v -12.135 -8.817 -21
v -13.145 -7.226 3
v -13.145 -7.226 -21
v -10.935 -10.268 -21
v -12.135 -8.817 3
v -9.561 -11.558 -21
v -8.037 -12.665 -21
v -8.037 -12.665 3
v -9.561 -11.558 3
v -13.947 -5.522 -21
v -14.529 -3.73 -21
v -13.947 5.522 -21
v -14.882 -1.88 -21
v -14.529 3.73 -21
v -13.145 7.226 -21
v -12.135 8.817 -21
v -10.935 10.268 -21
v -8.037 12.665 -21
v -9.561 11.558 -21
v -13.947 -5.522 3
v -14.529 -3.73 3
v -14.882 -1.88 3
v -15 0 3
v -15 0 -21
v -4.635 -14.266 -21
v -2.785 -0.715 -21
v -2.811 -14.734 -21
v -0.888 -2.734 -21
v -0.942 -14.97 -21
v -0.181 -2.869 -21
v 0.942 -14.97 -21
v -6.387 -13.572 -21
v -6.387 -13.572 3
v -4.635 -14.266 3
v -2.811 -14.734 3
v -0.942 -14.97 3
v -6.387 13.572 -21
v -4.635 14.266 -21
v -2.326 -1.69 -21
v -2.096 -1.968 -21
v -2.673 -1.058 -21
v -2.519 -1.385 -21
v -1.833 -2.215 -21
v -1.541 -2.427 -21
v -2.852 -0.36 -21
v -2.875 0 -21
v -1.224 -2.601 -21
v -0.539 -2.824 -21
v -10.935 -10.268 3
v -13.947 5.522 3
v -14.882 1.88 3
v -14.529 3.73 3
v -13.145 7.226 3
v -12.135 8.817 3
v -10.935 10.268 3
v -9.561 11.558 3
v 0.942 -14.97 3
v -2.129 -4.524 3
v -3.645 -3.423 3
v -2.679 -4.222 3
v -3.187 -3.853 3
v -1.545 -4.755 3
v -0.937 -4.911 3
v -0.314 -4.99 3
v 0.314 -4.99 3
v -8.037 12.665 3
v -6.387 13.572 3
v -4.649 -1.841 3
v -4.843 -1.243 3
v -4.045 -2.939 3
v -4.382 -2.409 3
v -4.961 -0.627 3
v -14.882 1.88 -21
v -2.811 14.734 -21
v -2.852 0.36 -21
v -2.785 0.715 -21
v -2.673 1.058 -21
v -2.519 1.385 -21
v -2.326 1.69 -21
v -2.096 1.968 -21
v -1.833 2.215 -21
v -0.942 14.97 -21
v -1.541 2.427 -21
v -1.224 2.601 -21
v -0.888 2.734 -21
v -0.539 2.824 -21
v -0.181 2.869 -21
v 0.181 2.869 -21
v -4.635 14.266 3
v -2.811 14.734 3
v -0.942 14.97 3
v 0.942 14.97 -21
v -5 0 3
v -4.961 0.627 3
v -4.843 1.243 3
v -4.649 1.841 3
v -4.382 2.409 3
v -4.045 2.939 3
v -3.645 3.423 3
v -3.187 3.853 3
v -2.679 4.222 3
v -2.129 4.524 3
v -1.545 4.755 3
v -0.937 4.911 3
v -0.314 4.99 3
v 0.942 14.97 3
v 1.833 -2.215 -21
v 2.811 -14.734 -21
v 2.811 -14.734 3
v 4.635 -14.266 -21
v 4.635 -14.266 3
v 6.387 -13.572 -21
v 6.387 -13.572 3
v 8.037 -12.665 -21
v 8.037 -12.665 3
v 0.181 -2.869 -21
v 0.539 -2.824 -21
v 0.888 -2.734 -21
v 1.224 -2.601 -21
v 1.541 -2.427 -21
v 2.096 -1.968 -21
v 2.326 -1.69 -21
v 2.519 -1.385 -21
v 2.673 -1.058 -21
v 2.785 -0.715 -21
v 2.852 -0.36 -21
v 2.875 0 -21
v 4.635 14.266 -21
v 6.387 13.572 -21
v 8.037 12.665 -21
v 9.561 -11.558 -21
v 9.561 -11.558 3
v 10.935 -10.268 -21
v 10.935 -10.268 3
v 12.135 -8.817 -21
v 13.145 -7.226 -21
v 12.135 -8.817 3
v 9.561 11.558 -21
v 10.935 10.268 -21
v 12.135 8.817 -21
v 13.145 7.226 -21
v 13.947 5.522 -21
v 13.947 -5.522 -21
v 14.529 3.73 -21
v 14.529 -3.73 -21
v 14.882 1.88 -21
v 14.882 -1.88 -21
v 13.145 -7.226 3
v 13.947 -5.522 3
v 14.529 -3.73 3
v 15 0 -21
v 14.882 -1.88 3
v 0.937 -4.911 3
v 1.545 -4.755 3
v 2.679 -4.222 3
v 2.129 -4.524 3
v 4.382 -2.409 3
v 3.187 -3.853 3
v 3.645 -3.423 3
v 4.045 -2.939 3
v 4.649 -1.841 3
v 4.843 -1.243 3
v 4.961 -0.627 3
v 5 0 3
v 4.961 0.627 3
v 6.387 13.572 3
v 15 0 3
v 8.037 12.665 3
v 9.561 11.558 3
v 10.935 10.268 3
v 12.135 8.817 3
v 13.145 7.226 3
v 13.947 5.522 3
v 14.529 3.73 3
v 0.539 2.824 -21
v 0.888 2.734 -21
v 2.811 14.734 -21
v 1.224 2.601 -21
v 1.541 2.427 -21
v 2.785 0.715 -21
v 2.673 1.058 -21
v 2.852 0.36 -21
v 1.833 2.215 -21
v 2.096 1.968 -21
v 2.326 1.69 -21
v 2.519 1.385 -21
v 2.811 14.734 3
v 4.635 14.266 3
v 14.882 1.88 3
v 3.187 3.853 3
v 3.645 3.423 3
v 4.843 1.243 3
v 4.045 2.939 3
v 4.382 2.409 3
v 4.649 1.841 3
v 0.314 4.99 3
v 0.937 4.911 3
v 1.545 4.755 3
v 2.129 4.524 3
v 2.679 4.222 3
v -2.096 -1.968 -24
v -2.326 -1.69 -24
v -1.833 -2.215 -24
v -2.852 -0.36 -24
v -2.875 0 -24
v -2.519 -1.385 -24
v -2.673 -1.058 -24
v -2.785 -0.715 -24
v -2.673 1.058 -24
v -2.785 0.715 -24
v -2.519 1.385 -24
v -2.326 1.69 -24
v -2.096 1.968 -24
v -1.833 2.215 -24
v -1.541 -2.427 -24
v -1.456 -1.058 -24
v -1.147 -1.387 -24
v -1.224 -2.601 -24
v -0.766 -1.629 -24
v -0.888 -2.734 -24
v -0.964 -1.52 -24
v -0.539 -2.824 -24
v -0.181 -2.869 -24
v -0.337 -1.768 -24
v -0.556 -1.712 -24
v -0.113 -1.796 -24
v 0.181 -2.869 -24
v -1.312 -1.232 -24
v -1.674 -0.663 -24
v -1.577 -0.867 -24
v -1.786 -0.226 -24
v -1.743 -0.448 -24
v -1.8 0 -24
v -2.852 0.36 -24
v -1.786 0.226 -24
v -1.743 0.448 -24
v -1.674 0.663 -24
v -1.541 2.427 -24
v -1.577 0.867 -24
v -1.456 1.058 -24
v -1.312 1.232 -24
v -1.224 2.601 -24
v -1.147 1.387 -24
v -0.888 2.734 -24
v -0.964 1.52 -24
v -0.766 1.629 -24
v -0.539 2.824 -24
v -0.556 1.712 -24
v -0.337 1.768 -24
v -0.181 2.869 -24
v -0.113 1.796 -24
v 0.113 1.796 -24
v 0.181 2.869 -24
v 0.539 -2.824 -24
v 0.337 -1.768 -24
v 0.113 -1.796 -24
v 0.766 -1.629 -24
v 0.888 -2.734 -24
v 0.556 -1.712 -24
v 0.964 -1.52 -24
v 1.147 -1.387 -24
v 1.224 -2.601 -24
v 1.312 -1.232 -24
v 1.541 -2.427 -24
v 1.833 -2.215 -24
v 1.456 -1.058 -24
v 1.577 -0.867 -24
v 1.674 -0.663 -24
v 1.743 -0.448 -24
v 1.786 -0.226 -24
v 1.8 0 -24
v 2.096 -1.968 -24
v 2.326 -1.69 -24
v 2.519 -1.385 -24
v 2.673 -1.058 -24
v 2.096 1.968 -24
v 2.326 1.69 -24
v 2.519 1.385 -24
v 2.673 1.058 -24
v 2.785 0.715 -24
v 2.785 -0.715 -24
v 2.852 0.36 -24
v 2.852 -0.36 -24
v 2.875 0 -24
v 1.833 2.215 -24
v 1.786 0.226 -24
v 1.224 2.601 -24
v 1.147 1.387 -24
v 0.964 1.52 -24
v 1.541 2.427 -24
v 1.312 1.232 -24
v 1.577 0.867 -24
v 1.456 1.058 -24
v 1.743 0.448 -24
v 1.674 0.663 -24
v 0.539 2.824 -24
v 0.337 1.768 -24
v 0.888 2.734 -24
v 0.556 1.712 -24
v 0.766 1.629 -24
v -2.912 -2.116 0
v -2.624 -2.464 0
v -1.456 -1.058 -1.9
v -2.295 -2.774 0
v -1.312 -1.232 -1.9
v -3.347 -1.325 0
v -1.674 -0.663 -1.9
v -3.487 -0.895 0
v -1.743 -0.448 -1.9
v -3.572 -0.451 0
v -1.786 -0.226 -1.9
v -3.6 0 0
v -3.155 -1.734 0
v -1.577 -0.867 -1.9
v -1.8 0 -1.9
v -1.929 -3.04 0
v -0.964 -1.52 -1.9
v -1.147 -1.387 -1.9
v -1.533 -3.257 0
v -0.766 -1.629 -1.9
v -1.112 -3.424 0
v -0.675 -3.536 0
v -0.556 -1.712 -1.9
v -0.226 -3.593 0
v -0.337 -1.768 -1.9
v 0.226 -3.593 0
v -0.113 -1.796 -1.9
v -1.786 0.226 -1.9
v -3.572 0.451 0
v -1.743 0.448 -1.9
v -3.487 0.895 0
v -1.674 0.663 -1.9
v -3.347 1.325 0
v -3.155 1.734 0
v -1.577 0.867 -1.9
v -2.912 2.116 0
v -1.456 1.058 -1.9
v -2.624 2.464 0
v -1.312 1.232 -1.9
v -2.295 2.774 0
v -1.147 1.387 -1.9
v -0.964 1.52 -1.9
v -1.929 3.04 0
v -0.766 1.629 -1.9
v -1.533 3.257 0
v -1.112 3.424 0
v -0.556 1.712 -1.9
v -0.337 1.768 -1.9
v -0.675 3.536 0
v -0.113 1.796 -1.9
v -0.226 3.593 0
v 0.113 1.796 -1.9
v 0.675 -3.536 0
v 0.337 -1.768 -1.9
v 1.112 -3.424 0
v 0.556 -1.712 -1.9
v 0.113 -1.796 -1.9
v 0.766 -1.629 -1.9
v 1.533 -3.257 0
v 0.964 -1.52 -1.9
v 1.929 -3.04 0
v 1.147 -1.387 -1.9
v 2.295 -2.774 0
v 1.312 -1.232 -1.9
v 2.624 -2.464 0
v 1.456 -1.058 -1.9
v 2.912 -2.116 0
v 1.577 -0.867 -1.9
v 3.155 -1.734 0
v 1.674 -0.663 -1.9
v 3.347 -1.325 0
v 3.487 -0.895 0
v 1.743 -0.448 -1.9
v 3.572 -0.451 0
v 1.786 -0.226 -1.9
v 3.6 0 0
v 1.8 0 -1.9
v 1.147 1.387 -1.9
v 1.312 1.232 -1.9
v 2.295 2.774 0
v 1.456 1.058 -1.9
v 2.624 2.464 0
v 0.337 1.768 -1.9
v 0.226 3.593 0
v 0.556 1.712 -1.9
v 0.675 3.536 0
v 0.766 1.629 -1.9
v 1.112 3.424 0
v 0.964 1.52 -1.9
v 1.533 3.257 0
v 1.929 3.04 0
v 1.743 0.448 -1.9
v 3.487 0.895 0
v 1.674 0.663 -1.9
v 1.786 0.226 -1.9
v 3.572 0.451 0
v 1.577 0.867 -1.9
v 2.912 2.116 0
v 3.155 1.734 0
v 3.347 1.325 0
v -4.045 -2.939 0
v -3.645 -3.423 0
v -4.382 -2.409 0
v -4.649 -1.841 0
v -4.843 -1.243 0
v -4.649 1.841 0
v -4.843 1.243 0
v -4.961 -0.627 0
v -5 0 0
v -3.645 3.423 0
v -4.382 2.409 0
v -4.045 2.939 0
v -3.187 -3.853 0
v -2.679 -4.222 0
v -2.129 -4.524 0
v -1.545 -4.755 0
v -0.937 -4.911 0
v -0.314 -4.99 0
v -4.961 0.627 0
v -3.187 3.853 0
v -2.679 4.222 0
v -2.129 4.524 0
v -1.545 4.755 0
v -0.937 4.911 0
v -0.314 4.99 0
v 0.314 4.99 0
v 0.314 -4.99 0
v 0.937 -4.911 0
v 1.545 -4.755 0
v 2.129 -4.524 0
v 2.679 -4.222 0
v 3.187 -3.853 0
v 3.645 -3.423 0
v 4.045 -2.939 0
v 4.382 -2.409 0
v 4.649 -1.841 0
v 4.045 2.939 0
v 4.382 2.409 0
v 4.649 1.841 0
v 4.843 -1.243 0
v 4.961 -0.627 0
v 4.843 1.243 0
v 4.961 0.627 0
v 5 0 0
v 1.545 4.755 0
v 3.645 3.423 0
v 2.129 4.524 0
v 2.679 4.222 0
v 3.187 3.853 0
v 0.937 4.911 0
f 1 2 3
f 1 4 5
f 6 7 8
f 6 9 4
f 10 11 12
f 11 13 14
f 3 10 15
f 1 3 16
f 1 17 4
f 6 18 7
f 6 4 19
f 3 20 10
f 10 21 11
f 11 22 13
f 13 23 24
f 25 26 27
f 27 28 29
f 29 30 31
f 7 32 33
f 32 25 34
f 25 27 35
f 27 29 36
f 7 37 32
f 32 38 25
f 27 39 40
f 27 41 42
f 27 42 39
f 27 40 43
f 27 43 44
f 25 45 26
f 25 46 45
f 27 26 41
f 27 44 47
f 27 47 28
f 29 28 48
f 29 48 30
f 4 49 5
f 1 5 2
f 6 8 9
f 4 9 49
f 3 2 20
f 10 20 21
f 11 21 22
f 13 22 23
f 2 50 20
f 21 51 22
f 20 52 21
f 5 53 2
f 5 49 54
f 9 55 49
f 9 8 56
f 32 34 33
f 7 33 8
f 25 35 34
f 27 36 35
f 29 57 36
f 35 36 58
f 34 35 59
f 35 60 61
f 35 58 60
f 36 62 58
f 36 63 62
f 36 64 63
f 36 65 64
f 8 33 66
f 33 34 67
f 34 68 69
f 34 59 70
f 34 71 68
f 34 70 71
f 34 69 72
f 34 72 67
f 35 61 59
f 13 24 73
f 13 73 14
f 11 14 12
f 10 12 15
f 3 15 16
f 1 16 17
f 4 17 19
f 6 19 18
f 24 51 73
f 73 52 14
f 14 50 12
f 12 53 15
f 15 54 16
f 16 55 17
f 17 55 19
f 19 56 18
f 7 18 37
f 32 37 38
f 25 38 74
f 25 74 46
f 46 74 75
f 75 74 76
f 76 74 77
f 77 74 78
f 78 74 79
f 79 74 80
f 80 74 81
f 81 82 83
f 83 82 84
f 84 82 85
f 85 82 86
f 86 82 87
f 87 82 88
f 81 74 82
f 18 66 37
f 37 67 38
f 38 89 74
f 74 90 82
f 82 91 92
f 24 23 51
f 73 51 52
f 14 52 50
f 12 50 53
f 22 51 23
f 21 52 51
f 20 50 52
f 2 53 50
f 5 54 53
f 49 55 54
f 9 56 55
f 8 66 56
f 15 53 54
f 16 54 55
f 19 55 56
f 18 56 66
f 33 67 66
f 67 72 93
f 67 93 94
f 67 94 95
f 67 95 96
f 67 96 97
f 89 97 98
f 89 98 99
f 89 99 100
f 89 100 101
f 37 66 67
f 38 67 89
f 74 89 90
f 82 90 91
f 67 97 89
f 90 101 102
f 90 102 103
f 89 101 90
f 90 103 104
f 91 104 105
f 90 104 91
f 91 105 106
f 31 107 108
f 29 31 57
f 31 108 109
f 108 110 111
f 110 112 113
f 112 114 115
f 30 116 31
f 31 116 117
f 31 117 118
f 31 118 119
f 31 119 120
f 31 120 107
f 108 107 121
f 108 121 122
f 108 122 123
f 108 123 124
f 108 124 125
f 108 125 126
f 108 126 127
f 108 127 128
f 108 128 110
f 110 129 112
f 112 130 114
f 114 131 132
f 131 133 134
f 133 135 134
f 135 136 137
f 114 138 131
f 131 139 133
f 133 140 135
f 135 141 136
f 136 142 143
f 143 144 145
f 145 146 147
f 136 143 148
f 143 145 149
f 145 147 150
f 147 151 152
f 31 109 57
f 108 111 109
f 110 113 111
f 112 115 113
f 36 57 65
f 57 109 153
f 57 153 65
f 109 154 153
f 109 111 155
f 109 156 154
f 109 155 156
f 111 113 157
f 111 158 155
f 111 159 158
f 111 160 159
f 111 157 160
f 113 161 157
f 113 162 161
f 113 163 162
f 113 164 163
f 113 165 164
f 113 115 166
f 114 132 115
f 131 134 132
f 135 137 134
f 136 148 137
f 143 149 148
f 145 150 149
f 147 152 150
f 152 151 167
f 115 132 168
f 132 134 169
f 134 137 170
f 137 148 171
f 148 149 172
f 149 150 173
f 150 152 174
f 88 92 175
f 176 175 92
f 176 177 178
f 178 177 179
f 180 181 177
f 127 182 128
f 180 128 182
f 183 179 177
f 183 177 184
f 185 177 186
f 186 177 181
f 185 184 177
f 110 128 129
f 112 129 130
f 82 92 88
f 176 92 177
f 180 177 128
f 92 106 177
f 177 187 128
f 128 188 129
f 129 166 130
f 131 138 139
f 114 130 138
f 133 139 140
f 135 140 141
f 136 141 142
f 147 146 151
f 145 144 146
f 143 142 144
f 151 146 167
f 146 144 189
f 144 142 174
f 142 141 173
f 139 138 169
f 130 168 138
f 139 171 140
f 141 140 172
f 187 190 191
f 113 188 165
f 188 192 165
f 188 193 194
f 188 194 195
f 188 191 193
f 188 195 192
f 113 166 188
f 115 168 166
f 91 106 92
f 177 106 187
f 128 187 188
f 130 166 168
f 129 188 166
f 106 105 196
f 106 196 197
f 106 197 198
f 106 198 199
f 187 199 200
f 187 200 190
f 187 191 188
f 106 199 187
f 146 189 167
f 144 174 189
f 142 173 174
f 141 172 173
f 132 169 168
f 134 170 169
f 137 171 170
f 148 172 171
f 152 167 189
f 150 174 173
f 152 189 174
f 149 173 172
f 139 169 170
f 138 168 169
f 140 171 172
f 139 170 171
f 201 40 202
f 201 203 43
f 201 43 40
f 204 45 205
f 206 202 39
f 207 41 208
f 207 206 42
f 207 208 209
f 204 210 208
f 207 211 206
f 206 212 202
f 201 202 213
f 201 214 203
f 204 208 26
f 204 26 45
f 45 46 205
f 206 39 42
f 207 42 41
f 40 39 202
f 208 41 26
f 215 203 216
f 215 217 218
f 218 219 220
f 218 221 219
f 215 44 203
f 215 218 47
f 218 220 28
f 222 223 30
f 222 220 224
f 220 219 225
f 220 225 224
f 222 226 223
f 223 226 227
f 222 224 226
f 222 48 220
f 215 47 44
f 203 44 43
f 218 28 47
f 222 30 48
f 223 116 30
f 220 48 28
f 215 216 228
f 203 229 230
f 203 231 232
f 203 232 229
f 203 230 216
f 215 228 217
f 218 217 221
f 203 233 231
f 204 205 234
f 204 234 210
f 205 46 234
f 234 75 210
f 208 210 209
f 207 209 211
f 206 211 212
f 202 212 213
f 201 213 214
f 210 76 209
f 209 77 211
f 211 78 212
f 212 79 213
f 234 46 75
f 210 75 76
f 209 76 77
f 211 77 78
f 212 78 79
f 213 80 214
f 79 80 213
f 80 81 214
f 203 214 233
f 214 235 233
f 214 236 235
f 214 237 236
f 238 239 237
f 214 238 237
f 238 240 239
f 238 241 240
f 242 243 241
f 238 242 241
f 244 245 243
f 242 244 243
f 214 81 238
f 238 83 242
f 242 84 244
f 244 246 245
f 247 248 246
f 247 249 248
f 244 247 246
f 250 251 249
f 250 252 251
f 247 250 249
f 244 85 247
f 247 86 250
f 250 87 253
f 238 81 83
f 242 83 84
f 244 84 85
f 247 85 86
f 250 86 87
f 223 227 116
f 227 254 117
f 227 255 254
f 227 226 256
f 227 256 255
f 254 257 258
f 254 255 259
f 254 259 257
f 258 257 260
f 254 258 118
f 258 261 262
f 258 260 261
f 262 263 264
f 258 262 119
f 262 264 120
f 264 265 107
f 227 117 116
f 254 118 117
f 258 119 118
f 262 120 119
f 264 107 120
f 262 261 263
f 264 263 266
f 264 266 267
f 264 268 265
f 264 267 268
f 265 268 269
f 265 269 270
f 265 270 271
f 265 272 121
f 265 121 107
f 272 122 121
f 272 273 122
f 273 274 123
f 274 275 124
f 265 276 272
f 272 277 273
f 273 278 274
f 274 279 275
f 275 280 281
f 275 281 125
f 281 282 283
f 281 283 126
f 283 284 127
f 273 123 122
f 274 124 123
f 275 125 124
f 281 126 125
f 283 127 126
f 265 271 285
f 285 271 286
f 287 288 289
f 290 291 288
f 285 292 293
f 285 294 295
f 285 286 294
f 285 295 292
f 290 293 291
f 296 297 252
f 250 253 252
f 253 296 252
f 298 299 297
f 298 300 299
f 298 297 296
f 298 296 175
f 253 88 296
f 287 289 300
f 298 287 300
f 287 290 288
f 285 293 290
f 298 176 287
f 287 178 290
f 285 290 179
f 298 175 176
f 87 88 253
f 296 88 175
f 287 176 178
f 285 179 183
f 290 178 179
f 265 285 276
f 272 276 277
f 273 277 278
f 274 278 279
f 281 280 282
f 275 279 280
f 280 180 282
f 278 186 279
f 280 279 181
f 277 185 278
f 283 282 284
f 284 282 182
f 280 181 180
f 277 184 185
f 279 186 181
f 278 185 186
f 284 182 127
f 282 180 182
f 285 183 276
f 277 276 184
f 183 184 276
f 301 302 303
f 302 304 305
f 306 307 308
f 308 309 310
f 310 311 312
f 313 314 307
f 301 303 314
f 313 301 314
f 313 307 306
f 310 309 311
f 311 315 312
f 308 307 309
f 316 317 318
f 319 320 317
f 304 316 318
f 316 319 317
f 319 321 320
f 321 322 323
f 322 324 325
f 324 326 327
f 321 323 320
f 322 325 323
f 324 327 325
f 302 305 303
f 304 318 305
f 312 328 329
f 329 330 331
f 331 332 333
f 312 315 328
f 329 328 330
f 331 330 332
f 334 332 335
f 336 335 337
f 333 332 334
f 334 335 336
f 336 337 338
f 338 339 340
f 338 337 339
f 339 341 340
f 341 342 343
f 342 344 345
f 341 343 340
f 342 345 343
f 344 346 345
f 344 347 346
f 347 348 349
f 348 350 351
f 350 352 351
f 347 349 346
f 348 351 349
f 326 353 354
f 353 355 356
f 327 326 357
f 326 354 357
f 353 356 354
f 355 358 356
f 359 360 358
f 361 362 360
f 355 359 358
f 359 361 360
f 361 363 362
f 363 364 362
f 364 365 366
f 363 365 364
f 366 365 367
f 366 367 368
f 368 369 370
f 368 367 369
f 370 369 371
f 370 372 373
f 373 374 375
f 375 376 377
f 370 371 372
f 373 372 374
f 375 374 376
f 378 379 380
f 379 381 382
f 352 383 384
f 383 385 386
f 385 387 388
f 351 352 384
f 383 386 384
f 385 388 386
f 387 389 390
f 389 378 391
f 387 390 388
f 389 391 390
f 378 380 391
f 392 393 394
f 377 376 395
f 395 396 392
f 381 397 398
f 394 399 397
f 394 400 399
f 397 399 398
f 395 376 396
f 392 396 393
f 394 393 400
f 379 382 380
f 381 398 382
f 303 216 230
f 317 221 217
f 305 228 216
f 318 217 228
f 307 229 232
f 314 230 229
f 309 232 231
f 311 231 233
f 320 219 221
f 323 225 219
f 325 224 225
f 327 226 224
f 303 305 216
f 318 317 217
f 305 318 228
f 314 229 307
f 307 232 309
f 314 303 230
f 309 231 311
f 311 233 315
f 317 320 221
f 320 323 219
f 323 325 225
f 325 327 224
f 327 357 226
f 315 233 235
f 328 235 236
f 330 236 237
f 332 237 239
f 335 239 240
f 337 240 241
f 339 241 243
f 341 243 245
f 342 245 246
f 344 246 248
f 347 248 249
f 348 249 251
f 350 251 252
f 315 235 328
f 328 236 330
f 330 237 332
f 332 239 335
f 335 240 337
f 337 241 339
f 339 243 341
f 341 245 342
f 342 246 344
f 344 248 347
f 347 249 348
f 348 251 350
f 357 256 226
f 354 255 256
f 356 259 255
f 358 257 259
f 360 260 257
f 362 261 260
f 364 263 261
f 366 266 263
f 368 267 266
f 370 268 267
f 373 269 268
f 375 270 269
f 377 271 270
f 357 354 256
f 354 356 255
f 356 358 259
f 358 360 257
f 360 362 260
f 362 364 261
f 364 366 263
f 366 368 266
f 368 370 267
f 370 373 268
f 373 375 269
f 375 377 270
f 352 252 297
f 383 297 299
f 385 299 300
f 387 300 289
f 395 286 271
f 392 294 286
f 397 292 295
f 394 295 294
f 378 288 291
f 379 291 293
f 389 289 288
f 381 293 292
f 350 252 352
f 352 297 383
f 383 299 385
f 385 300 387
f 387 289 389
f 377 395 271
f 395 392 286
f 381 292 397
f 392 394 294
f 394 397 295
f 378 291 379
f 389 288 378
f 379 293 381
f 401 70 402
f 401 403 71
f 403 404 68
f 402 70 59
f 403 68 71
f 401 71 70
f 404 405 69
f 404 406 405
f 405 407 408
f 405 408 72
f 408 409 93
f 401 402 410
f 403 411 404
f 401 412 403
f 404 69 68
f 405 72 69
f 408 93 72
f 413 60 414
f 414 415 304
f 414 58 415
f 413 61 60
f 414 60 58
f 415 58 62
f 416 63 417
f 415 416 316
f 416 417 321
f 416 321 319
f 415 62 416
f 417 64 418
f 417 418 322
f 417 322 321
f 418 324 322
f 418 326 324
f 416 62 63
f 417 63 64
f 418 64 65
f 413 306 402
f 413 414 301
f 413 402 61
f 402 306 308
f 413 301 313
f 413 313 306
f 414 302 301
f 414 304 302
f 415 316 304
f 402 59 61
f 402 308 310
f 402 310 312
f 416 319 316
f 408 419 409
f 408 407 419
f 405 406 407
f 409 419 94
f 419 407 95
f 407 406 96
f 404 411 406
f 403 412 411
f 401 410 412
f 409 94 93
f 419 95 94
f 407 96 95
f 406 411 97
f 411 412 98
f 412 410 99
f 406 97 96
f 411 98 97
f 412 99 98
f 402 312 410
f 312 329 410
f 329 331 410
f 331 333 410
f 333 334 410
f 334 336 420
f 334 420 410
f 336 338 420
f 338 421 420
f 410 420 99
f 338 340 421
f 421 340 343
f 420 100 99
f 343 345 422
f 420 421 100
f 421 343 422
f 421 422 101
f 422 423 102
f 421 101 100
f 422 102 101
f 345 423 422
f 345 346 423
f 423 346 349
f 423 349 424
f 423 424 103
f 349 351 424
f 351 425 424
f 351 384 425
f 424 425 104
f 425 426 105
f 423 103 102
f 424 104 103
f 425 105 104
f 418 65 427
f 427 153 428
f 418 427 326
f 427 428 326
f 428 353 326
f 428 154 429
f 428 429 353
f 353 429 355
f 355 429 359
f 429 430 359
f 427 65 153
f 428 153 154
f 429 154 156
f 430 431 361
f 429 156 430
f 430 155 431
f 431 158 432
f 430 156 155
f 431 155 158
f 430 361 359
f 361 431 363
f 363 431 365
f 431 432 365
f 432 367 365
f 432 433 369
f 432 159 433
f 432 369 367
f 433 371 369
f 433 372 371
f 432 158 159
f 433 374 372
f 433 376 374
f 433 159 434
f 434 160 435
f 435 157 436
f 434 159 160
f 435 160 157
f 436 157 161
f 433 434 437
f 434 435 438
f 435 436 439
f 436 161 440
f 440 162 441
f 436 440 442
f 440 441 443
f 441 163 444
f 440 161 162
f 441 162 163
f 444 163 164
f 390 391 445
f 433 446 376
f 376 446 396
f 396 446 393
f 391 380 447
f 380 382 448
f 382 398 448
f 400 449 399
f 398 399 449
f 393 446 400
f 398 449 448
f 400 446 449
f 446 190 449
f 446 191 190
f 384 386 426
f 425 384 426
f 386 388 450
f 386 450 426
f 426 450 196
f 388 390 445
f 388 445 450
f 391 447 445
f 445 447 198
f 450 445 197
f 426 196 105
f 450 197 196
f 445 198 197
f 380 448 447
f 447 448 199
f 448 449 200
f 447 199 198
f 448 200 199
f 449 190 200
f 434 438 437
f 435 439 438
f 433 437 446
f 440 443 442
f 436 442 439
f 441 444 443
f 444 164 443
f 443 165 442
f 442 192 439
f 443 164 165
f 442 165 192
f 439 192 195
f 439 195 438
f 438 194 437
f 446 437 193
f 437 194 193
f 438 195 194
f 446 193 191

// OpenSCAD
$fn = 50;

difference() {
	union() {
		translate(v = [0, 0, -21.0]) {
			cylinder(h = 24, r = 15.0);
		}
		#translate(v = [0, 0, -24.0]) {
			cylinder(h = 24, r = 2.875);
		}
	}
	union() {
		translate(v = [0, 0, 0]) {
			rotate(a = [0, 0, 0]) {
				difference() {
					union() {
						translate(v = [0, 0, -24.0]) {
							cylinder(h = 24, r = 1.5);
						}
						translate(v = [0, 0, -1.9]) {
							cylinder(h = 1.9, r1 = 1.8, r2 = 3.6);
						}
						translate(v = [0, 0, -24.0]) {
							cylinder(h = 24, r = 1.8);
						}
						translate(v = [0, 0, -24.0]) {
							cylinder(h = 24, r = 1.5);
						}
					}
					union();
				}
			}
		}
		#cylinder(h = 3, r = 5.0);
	}
}
